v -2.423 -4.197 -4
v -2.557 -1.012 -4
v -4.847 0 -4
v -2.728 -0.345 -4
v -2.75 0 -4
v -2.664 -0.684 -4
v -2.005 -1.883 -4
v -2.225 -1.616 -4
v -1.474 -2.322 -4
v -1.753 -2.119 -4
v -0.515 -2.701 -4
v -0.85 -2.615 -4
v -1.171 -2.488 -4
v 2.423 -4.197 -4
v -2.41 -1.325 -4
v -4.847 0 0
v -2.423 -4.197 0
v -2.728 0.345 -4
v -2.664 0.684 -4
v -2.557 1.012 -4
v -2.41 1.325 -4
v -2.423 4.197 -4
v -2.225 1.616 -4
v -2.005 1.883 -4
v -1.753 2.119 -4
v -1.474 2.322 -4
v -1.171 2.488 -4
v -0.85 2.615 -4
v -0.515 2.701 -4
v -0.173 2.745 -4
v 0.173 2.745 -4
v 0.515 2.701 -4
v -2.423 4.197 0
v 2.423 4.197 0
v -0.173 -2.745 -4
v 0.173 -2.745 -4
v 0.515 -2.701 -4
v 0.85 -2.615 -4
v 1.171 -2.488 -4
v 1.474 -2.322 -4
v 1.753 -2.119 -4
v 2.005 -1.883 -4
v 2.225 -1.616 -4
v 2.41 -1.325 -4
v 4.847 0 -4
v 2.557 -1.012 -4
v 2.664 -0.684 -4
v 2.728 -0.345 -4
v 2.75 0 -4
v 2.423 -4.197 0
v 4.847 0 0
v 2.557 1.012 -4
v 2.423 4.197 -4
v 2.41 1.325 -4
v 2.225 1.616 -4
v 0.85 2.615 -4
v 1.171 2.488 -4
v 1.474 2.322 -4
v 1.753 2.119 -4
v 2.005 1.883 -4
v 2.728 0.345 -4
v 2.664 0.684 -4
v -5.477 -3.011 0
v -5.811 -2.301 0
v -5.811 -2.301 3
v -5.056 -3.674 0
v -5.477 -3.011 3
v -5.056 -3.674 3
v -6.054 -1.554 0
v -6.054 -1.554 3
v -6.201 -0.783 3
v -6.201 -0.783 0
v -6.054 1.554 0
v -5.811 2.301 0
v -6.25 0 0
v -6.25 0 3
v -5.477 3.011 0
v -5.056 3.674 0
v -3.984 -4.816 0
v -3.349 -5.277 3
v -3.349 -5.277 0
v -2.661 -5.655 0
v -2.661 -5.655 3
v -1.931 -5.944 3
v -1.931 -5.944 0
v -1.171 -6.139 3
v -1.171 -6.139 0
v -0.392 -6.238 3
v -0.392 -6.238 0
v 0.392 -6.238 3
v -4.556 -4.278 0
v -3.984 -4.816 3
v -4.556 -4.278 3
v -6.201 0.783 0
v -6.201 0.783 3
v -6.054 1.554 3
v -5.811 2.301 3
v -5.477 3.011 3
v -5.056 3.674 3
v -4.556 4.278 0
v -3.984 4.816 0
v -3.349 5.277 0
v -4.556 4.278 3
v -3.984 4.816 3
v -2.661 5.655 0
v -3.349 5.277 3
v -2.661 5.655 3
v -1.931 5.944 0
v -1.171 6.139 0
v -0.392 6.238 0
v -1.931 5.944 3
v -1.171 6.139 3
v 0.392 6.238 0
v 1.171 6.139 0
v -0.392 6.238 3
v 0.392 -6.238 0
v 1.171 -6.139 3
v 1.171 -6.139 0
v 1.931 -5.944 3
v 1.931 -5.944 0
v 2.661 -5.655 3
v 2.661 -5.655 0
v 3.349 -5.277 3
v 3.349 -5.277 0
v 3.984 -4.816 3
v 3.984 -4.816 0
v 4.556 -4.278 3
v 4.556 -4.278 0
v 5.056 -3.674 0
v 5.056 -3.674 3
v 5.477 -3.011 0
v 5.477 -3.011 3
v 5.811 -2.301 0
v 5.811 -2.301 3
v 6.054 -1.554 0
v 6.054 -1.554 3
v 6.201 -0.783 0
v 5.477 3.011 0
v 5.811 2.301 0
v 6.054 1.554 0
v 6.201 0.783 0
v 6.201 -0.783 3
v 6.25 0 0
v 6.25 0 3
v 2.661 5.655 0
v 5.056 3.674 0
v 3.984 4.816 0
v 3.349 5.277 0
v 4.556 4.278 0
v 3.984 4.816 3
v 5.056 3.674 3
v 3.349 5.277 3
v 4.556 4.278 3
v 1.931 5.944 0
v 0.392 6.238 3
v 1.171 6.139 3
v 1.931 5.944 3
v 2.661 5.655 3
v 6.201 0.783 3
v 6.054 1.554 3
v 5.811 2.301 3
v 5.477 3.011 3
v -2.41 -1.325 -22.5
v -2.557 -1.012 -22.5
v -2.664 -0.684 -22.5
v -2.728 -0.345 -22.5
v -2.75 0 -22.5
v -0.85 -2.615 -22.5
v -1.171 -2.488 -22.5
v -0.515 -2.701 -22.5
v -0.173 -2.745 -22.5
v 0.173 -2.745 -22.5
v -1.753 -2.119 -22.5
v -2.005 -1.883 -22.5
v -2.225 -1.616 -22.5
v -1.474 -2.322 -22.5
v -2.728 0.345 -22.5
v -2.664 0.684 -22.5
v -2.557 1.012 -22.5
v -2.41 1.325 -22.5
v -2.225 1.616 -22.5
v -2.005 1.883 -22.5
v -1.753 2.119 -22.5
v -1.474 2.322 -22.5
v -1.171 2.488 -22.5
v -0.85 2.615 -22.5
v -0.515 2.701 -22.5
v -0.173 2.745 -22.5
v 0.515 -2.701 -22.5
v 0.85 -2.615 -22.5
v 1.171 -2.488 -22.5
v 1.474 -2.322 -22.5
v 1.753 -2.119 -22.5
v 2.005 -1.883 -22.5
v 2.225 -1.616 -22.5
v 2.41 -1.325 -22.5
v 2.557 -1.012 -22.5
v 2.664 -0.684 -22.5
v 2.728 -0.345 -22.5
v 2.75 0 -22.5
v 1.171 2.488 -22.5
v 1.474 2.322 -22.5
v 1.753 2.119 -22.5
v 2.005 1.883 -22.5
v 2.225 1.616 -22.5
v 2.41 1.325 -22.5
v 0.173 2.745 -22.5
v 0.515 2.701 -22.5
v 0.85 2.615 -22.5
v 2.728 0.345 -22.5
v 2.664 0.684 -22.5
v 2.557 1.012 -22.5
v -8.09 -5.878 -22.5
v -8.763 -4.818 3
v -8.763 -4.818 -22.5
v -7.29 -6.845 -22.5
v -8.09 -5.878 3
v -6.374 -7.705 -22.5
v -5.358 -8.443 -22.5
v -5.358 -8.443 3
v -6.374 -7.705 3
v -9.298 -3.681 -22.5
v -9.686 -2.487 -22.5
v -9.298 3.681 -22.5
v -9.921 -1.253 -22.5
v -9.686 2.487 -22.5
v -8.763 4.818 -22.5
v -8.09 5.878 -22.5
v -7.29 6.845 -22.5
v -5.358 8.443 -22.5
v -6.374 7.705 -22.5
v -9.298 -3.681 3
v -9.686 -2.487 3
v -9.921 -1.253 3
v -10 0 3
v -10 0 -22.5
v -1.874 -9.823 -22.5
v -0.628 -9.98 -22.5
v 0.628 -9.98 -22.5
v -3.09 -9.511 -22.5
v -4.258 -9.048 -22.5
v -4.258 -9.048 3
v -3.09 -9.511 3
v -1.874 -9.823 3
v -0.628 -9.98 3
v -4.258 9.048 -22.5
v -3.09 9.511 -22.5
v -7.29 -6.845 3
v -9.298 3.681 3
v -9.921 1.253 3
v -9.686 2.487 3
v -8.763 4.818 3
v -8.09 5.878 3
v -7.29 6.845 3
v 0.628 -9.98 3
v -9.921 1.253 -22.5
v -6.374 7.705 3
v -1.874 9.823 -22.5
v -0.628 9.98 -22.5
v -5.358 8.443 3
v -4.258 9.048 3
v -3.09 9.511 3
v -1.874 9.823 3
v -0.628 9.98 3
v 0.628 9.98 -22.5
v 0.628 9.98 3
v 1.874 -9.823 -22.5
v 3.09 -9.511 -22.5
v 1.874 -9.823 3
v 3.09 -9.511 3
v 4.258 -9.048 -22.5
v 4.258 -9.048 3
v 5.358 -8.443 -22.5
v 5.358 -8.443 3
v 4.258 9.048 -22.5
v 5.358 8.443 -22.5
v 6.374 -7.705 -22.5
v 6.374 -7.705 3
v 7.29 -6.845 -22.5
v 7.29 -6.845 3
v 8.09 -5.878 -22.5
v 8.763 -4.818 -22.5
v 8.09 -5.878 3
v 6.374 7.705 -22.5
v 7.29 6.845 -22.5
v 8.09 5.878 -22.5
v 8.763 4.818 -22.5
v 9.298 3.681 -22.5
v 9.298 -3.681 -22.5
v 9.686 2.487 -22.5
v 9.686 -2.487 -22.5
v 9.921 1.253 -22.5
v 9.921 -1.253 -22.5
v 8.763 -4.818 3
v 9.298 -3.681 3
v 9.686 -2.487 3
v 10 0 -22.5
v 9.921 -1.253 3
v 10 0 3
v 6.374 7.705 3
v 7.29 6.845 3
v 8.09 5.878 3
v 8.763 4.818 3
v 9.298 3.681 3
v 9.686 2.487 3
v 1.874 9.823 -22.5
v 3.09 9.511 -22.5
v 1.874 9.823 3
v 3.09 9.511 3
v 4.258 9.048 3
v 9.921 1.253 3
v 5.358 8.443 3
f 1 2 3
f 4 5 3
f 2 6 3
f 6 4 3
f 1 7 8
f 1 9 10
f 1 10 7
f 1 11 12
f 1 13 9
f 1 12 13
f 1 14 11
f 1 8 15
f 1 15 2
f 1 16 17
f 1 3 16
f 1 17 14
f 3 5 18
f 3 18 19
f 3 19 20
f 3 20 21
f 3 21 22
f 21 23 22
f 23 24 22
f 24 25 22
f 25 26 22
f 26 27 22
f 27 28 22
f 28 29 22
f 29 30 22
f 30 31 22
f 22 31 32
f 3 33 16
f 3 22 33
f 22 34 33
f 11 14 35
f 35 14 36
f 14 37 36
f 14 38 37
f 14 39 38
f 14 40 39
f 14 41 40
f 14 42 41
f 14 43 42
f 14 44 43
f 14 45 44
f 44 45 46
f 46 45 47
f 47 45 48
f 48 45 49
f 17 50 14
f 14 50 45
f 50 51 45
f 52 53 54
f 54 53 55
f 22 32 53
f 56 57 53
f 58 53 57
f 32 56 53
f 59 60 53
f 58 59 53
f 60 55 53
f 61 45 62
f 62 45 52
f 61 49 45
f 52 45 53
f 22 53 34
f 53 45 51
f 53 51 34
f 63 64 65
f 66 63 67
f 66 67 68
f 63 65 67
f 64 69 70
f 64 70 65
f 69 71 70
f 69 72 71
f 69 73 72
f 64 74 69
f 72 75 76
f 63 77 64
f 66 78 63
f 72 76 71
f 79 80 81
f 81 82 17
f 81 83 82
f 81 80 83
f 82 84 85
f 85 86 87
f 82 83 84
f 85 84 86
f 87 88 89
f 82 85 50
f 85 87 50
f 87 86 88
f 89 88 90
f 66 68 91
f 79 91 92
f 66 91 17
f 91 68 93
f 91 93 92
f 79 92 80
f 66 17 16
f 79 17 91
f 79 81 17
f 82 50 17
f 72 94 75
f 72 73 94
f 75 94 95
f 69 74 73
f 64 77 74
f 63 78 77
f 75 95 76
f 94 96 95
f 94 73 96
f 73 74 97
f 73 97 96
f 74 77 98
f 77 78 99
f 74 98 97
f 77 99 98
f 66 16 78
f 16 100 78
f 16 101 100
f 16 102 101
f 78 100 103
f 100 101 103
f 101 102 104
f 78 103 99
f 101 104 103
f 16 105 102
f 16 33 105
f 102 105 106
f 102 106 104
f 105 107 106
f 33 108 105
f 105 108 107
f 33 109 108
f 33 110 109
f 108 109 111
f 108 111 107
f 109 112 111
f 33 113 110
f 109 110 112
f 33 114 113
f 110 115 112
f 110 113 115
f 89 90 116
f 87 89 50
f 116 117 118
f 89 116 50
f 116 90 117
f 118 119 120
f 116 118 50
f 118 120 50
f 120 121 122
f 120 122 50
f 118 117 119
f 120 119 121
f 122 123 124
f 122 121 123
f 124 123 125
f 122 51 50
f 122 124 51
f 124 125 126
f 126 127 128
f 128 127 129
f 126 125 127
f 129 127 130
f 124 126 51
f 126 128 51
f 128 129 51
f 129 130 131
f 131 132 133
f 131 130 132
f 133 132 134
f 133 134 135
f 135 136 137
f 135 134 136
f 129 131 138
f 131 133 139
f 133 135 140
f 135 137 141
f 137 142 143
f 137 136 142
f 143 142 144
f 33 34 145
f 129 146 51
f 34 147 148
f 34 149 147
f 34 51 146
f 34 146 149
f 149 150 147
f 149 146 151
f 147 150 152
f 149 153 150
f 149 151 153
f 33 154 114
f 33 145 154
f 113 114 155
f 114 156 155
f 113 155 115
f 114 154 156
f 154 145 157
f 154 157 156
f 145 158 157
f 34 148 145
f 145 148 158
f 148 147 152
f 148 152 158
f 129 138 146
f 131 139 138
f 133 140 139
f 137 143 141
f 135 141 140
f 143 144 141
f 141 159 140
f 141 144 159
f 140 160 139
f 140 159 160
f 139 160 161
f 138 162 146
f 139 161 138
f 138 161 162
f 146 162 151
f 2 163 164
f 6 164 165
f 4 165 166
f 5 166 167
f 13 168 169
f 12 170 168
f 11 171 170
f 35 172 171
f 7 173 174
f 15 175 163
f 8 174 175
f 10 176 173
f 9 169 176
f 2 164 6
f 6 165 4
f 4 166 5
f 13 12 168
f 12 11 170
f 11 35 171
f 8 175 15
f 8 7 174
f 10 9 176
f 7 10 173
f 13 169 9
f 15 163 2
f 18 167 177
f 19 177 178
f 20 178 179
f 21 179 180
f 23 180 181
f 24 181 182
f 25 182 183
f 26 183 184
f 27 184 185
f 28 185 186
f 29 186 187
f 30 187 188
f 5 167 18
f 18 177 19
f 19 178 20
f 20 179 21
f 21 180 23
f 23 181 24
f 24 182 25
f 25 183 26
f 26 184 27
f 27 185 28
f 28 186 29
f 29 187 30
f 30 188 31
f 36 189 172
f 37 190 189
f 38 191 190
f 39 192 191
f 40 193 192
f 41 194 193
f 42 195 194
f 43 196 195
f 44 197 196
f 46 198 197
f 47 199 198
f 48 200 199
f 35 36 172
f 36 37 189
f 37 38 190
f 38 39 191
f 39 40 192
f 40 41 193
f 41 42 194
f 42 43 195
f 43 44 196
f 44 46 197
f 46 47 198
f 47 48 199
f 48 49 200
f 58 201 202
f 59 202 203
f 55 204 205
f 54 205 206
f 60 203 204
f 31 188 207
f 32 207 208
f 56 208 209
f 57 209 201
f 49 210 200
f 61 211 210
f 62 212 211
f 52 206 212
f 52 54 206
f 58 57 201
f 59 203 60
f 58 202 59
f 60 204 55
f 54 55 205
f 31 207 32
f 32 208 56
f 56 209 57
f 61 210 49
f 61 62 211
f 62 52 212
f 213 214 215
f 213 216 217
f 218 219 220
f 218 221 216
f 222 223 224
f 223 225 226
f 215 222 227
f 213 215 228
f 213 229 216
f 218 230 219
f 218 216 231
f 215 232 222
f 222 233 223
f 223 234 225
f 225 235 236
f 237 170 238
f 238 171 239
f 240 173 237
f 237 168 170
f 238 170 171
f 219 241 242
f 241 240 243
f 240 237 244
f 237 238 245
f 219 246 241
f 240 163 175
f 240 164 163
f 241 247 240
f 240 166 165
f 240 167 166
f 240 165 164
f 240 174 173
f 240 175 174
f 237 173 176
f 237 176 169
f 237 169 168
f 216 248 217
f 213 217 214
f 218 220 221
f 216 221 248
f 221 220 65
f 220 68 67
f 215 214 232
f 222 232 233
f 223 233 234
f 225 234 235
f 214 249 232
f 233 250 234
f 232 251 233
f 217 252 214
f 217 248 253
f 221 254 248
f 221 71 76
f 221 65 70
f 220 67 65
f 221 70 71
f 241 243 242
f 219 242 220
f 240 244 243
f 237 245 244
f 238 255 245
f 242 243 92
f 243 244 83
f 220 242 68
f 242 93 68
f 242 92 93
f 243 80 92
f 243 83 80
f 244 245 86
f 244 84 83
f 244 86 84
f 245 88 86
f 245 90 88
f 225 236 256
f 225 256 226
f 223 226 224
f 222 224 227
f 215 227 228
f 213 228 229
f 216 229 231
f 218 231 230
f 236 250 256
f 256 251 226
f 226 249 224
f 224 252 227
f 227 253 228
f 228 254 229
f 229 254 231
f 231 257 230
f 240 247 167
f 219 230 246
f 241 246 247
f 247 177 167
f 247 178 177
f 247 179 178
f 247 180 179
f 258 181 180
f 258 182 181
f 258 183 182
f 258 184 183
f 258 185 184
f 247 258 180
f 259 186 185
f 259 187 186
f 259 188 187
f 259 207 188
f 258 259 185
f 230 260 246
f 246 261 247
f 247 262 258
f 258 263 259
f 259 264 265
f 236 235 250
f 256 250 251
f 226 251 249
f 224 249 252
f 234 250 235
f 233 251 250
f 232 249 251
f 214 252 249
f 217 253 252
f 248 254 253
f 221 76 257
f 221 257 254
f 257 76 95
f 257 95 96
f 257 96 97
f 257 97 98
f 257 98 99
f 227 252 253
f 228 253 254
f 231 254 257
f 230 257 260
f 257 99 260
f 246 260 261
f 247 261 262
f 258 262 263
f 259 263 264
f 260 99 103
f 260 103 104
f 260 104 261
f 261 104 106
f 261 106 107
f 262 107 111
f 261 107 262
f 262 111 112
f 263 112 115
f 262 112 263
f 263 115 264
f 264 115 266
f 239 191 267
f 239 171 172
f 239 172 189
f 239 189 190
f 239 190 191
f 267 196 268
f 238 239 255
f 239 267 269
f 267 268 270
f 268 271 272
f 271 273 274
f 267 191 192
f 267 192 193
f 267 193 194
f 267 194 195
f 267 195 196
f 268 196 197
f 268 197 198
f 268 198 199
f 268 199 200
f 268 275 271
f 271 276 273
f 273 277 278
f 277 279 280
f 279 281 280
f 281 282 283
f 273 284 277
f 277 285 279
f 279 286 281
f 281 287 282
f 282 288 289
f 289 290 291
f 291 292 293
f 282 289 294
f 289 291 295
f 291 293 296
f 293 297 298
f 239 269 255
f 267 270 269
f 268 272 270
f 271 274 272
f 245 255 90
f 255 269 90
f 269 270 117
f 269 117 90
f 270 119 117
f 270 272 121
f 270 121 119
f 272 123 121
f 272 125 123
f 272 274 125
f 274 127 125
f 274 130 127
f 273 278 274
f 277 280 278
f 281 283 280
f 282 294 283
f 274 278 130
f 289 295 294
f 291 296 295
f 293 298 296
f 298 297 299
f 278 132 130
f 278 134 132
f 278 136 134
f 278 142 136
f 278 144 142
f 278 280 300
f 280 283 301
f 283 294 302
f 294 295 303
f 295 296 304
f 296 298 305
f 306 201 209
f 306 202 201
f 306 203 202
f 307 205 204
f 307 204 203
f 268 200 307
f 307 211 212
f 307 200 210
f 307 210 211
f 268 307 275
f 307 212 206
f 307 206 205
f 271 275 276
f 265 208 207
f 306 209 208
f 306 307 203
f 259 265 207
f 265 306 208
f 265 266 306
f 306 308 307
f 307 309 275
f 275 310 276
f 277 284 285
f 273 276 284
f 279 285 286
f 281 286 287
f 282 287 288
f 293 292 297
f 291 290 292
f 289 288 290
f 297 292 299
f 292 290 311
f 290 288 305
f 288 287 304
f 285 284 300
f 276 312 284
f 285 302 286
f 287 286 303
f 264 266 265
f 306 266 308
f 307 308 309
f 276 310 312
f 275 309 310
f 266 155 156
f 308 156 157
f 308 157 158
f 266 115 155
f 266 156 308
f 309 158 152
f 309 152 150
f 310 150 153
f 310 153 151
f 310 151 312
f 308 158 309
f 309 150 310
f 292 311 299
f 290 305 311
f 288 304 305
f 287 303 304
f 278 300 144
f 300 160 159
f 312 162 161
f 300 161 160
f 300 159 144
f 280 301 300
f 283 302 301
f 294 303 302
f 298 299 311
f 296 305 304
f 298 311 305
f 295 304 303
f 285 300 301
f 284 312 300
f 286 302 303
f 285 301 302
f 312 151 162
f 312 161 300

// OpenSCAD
$fn = 50;

difference() {
	union() {
		translate(v = [0, 0, -22.5]) {
			cylinder(h = 25.5, r = 10.0);
		}
	}
	union() {
		translate(v = [0, 0, 0]) {
			rotate(a = [0, 0, 0]) {
				difference() {
					union() {
						translate(v = [0, 0, -4]) {
							linear_extrude(height = 4) {
								polygon(points = [[4.8468, 0.0], [2.4234000000000004, 4.197451927062417], [-2.423399999999999, 4.197451927062417], [-4.8468, 5.935618106107392e-16], [-2.423400000000002, -4.197451927062416], [2.423399999999997, -4.197451927062419]]);
							}
						}
					}
					union();
				}
			}
		}
		#cylinder(h = 3, r = 6.25);
		#translate(v = [0, 0, -100.0]) {
			cylinder(h = 200, r = 2.75);
		}
	}
}
